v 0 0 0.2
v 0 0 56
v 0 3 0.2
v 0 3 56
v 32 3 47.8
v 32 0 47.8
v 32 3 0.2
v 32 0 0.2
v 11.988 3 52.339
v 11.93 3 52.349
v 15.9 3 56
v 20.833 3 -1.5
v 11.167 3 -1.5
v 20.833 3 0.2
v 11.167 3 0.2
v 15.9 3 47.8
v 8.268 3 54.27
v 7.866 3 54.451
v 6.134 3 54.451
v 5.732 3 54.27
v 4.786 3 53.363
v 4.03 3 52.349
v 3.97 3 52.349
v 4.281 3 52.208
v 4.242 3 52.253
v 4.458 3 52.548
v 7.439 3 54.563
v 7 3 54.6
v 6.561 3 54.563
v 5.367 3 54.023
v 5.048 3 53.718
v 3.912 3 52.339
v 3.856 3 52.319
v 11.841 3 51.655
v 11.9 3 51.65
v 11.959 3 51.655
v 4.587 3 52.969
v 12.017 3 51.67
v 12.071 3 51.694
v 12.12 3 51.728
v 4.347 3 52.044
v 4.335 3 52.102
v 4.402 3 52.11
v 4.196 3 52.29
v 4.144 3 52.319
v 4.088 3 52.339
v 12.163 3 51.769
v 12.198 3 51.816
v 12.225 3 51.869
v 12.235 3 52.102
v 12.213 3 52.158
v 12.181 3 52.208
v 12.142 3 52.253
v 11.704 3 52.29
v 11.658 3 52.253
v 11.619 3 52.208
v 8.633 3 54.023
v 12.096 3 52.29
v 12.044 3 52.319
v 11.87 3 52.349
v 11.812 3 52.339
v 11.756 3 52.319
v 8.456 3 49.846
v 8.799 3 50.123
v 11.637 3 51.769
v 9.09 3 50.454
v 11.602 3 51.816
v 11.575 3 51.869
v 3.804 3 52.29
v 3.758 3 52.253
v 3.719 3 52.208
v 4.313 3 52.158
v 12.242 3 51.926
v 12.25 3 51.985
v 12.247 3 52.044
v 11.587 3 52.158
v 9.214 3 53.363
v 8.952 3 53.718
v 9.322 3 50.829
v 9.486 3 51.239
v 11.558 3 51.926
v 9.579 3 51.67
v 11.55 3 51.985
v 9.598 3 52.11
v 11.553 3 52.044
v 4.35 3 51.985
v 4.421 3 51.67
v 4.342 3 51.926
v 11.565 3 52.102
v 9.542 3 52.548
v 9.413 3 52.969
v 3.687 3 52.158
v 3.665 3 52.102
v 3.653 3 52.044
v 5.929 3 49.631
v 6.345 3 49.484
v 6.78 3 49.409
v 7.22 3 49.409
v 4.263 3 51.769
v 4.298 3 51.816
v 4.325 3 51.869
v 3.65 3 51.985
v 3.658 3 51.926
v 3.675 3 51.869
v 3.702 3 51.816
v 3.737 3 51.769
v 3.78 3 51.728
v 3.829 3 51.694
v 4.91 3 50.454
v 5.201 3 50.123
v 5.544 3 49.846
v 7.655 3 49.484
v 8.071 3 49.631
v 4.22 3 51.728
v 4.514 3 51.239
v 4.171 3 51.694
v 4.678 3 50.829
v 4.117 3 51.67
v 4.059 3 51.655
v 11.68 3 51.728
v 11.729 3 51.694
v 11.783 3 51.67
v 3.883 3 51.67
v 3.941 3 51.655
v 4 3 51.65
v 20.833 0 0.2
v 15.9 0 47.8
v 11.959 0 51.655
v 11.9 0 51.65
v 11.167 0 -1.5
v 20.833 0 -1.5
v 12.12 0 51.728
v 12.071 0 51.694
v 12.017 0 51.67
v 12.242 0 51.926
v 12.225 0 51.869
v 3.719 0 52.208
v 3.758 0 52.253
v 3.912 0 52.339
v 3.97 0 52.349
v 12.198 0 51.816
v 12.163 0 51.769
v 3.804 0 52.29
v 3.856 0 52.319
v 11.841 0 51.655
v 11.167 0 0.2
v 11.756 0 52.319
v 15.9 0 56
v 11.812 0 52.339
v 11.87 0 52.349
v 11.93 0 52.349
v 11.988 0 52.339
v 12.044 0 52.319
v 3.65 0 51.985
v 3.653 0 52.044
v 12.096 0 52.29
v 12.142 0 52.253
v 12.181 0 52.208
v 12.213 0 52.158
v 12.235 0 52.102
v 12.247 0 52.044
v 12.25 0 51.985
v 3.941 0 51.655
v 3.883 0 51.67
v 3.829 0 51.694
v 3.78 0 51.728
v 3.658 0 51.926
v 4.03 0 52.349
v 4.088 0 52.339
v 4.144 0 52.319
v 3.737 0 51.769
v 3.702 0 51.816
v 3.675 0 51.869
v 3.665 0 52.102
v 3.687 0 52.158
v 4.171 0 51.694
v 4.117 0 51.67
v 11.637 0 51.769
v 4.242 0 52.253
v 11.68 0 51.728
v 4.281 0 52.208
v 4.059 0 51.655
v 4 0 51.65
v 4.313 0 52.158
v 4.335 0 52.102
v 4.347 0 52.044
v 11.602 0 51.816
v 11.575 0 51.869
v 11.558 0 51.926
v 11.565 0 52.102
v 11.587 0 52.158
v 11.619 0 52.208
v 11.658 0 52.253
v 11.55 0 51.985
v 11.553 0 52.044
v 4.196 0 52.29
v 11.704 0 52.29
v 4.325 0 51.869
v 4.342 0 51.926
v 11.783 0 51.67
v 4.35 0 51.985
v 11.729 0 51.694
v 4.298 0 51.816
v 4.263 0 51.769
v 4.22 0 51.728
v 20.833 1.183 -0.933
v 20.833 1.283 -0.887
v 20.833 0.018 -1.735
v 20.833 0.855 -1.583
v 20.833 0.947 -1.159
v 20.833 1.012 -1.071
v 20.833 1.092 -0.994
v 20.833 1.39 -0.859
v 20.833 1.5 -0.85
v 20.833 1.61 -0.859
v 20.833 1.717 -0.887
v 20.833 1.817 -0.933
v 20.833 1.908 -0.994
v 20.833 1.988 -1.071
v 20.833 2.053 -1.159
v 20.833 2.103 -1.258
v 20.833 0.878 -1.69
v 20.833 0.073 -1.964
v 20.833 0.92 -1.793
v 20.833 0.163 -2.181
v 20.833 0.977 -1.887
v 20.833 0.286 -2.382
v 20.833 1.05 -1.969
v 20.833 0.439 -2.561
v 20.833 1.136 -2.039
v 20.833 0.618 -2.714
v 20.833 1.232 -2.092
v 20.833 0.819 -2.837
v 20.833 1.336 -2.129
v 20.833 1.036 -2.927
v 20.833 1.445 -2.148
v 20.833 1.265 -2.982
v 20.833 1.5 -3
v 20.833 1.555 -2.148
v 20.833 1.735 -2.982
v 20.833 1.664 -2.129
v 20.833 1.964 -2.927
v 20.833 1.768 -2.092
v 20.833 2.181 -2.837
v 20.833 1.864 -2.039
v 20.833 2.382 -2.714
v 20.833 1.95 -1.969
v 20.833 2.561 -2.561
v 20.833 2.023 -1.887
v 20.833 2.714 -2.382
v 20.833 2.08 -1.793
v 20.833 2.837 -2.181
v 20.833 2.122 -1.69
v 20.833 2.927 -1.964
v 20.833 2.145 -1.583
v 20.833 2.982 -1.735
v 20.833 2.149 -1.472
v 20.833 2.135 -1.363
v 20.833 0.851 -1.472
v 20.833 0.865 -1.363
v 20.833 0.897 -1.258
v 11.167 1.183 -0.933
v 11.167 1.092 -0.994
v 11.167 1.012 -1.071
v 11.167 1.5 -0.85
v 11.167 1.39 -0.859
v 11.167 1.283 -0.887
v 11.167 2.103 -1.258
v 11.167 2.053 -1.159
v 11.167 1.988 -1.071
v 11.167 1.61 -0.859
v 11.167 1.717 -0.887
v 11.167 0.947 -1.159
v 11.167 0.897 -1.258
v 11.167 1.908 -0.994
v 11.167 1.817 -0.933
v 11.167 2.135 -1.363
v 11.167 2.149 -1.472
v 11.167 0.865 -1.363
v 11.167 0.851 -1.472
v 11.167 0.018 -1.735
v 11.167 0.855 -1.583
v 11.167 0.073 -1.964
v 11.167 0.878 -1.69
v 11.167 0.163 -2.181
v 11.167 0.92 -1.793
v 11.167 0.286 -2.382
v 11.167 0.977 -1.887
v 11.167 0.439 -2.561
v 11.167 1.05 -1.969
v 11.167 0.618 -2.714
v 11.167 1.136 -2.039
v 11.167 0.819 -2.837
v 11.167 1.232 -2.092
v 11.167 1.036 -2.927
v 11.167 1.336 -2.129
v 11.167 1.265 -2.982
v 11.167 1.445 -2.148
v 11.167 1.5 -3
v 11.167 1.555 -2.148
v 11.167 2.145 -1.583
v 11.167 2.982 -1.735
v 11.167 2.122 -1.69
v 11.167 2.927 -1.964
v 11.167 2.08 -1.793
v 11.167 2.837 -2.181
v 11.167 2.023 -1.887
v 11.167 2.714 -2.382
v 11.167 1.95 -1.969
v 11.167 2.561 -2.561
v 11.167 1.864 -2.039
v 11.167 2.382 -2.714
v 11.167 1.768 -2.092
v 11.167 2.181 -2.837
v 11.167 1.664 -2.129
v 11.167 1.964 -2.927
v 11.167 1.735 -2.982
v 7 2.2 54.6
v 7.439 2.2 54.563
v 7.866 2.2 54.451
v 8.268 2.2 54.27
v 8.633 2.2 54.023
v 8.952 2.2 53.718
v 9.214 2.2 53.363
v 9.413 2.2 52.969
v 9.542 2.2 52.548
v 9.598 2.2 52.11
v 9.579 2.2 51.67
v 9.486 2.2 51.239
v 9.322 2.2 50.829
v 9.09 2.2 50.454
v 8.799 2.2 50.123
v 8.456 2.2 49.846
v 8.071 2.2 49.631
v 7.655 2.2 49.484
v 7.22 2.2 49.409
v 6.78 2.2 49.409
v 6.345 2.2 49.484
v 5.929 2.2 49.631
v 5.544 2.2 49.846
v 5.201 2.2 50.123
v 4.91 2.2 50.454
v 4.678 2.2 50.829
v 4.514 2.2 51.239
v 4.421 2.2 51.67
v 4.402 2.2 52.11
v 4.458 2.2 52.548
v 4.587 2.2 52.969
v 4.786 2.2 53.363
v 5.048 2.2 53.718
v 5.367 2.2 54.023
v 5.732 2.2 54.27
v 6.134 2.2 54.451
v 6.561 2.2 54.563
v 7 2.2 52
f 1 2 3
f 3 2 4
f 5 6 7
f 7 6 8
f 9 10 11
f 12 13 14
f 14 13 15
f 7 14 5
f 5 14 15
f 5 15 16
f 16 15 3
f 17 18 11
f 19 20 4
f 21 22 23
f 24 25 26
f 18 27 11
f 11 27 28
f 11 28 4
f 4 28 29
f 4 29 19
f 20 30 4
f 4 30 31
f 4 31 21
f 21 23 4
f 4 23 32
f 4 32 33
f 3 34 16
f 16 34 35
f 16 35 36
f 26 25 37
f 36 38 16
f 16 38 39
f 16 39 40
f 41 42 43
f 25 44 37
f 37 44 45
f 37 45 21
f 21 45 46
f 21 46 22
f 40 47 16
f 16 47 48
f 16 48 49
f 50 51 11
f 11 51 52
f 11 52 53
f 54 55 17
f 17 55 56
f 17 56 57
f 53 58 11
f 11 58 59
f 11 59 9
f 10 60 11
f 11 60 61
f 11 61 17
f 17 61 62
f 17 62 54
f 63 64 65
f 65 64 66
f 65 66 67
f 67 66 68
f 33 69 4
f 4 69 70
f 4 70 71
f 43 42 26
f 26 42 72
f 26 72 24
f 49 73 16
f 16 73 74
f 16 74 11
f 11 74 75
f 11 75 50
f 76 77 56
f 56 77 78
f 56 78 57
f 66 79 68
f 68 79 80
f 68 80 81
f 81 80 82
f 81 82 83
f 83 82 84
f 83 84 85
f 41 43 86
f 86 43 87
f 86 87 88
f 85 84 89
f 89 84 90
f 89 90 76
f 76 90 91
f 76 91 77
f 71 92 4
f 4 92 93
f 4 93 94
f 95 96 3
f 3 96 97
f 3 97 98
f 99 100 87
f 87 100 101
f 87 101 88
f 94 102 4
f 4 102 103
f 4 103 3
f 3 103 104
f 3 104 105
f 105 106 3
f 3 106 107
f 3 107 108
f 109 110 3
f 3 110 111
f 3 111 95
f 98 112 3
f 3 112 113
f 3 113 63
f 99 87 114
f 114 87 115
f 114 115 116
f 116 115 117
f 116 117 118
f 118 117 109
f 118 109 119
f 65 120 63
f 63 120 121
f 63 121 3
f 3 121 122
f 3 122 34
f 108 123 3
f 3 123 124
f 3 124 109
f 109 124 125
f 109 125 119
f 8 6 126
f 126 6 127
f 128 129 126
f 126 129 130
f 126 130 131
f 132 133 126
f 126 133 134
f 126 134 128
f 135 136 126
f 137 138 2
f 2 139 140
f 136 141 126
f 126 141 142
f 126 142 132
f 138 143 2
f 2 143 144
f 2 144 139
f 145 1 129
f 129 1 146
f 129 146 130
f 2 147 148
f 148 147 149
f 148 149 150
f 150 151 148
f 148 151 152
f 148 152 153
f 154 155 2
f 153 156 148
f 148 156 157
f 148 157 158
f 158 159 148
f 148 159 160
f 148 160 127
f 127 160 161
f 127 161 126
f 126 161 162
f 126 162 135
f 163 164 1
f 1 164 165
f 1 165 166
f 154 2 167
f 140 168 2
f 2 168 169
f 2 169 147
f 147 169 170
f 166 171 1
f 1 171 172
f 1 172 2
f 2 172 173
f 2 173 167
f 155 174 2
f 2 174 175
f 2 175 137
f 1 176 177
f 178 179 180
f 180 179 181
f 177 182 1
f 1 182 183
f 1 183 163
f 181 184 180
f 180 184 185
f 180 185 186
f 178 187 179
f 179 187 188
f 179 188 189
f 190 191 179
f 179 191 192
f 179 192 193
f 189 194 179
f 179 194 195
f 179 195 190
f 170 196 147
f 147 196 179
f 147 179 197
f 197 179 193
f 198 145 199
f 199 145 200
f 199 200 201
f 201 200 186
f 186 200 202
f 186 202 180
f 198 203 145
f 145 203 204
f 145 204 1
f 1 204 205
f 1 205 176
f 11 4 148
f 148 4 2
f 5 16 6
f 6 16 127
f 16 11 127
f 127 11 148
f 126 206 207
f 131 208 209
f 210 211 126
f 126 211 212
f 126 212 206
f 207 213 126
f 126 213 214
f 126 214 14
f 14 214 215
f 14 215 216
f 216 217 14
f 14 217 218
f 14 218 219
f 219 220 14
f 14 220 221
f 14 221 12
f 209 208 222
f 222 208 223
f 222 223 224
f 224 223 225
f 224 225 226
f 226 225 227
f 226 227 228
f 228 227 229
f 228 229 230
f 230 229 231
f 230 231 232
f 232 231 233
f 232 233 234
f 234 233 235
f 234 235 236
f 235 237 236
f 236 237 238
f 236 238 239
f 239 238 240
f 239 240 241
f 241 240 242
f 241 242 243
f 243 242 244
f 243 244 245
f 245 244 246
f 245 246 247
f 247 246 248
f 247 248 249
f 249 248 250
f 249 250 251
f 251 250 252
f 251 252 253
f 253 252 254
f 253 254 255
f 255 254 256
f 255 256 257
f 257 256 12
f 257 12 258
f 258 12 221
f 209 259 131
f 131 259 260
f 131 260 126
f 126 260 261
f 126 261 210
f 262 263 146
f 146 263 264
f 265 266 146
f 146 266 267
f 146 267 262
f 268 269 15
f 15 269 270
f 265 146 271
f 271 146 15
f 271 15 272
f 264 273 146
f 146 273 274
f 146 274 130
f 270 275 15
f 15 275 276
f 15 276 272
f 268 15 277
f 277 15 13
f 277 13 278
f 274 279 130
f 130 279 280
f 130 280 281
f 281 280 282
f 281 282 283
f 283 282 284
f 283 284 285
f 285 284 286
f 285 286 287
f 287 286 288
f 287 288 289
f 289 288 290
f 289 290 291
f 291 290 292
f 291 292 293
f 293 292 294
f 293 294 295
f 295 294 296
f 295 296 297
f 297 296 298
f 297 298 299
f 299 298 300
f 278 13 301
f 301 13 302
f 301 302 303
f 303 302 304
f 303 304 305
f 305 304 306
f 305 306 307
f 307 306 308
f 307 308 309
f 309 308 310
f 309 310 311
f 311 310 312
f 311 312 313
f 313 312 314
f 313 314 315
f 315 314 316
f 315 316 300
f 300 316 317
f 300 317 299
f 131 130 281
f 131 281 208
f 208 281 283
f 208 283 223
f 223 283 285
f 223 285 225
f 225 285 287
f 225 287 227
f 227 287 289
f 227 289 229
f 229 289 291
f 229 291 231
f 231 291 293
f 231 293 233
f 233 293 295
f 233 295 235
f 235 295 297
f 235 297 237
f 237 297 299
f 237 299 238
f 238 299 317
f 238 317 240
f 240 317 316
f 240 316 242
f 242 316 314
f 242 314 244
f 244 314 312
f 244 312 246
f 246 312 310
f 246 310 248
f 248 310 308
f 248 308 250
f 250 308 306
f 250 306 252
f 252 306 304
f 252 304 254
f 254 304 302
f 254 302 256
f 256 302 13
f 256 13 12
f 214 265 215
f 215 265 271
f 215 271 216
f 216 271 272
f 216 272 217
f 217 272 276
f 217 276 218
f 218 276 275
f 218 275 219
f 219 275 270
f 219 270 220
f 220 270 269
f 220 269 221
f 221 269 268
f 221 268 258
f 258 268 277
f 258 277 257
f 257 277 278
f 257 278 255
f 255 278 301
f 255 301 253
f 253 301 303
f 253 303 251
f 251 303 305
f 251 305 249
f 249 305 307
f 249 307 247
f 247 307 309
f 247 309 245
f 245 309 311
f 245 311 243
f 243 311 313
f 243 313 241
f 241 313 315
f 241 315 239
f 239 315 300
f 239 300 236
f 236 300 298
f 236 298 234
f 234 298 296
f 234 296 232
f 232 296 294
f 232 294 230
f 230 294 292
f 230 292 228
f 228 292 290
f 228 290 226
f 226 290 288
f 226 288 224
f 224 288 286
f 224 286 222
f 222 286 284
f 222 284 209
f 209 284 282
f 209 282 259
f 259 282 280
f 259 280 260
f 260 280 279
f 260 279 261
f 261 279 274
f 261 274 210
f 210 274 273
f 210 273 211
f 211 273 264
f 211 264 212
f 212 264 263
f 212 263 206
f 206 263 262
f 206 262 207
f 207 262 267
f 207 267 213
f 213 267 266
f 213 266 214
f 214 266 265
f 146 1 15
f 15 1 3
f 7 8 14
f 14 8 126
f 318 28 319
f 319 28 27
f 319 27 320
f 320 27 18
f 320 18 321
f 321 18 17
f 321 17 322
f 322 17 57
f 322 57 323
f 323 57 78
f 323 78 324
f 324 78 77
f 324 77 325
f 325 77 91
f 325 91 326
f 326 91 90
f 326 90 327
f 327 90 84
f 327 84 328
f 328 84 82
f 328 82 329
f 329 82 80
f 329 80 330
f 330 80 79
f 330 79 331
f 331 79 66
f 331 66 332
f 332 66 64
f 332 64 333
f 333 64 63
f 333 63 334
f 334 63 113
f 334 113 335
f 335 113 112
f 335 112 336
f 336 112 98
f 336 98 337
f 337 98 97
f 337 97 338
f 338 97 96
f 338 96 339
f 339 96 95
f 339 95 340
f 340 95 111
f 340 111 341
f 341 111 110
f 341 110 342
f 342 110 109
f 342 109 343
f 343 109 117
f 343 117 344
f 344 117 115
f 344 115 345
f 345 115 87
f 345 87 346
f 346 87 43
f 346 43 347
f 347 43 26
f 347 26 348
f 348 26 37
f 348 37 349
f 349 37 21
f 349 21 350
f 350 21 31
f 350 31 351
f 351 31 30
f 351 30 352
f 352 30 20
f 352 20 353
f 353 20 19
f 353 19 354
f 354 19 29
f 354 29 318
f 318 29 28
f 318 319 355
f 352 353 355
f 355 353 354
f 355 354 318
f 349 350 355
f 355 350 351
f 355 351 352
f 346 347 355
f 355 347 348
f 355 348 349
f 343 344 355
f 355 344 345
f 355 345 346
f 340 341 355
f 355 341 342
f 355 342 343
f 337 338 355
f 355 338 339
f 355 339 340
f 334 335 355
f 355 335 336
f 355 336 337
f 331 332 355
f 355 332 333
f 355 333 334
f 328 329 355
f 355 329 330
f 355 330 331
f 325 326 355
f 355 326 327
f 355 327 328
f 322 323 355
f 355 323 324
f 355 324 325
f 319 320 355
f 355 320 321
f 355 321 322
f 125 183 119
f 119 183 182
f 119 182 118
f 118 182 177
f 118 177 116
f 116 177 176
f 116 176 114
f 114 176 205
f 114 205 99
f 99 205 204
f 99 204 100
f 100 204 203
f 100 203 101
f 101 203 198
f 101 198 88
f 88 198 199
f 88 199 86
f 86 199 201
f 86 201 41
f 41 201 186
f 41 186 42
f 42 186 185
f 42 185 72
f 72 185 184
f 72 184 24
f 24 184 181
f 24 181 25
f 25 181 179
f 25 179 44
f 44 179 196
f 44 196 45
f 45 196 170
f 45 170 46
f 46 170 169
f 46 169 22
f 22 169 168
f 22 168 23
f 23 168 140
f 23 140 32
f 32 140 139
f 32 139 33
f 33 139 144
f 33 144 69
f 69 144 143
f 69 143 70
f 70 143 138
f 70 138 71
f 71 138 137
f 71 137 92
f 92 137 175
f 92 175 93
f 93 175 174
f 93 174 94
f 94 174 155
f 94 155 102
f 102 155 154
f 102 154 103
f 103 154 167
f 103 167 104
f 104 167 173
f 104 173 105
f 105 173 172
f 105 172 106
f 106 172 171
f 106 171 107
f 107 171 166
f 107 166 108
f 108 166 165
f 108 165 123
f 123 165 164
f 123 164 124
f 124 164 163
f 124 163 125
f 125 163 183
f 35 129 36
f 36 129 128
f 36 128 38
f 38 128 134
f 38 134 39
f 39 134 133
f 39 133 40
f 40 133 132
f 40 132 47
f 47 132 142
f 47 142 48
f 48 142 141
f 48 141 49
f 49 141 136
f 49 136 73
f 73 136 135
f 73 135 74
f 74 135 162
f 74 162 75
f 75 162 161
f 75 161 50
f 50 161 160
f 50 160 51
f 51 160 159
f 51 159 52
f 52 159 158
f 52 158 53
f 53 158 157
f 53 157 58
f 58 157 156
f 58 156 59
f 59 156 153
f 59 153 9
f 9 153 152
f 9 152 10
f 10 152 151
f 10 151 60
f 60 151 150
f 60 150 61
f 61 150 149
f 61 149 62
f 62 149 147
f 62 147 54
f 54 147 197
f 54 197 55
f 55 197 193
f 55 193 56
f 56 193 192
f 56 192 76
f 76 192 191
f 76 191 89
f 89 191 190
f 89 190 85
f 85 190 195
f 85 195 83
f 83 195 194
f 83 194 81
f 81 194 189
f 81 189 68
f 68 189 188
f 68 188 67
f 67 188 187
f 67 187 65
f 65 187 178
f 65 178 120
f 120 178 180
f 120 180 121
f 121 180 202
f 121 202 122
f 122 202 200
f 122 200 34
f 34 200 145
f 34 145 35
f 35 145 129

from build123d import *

# Parameters (mm, degrees)
EXTRUDE_1_DEPTH     = 3
SKETCH_2_W          = 9.666666666
SKETCH_2_H          = 3
EXTRUDE_2_DEPTH     = 3
FILLET_1_R          = 1.5
SKETCH_3_R          = 0.65
CUT_EXTRUDE_1_DEPTH = 60.824976204
SKETCH_2_3_W        = 10.666666667
SKETCH_2_3_H        = 3
SKETCH_2_3_W_2      = 0.5
CUT_EXTRUDE_2_DEPTH = 0.2
SKETCH_4_R          = 2.6
CUT_EXTRUDE_3_DEPTH = 0.8
SKETCH_5_R          = 0.35
CUT_EXTRUDE_4_DEPTH = 65.567793829


with BuildPart() as part:
    # 草图1 → 凸台-拉伸1 (new body)
    with BuildSketch(Plane(origin=(0, 0, 0), x_dir=(1, 0, 0), z_dir=(0, 1, 0))):
        Polygon((15.9, -47.8), (32, -47.8), (32, 0), (0, 0), (0, -56), (15.9, -56), align=None)
    extrude(amount=EXTRUDE_1_DEPTH)

    # 草图2 → 凸台-拉伸2 (add)
    with BuildSketch(Plane(origin=(0, 0, 0), x_dir=(-1, 0, 0), z_dir=(0, 0, -1))):
        with Locations((-16, 1.5)):
            Rectangle(SKETCH_2_W, SKETCH_2_H)
    extrude(amount=EXTRUDE_2_DEPTH)

    # 圆角1
    fillet_1_edges = [part.edges().sort_by_distance(p)[0] for p in [
        (16, 3, -3),
        (16, 0, -3),
    ]]
    fillet(fillet_1_edges, radius=FILLET_1_R - 0.0001)  # a hair under: the kernel refuses the full size

    # 草图3 → 切除-拉伸1 (cut, through all)
    with BuildSketch(Plane.ZY.offset(-11.166666667)):
        with Locations((-1.5, 1.5)):
            Circle(SKETCH_3_R)
    extrude(amount=-CUT_EXTRUDE_1_DEPTH, mode=Mode.SUBTRACT)

    # 草图2<3> → 切除-拉伸2 (cut)
    with BuildSketch(Plane(origin=(0, 0, 0), x_dir=(-1, 0, 0), z_dir=(0, 0, -1))):
        with Locations((-5.333333334, 1.5)):
            Rectangle(SKETCH_2_3_W, SKETCH_2_3_H)
        with Locations((-10.916666667, 1.5)):
            Rectangle(SKETCH_2_3_W_2, SKETCH_2_3_H)
        with Locations((-21.083333333, 1.5)):
            Rectangle(SKETCH_2_3_W_2, SKETCH_2_3_H)
        with Locations((-26.666666666, 1.5)):
            Rectangle(SKETCH_2_3_W, SKETCH_2_3_H)
    extrude(amount=-CUT_EXTRUDE_2_DEPTH, mode=Mode.SUBTRACT)

    # 草图4 → 切除-拉伸3 (cut)
    with BuildSketch(Plane(origin=(0, 3, 0), x_dir=(1, 0, 0), z_dir=(0, 1, 0))):
        with Locations(Location((7, -52, 0), (0, 0, 270))):
            Circle(SKETCH_4_R)
    extrude(amount=-CUT_EXTRUDE_3_DEPTH, mode=Mode.SUBTRACT)

    # 草图5 → 切除-拉伸4 (cut, through all)
    with BuildSketch(Plane.XZ):
        with Locations(Location((11.9, 52, 0), (0, 0, 270))):
            Circle(SKETCH_5_R)
        with Locations(Location((4, 52, 0), (0, 0, 270))):
            Circle(SKETCH_5_R)
    extrude(amount=-CUT_EXTRUDE_4_DEPTH, mode=Mode.SUBTRACT)


solid = part.part
